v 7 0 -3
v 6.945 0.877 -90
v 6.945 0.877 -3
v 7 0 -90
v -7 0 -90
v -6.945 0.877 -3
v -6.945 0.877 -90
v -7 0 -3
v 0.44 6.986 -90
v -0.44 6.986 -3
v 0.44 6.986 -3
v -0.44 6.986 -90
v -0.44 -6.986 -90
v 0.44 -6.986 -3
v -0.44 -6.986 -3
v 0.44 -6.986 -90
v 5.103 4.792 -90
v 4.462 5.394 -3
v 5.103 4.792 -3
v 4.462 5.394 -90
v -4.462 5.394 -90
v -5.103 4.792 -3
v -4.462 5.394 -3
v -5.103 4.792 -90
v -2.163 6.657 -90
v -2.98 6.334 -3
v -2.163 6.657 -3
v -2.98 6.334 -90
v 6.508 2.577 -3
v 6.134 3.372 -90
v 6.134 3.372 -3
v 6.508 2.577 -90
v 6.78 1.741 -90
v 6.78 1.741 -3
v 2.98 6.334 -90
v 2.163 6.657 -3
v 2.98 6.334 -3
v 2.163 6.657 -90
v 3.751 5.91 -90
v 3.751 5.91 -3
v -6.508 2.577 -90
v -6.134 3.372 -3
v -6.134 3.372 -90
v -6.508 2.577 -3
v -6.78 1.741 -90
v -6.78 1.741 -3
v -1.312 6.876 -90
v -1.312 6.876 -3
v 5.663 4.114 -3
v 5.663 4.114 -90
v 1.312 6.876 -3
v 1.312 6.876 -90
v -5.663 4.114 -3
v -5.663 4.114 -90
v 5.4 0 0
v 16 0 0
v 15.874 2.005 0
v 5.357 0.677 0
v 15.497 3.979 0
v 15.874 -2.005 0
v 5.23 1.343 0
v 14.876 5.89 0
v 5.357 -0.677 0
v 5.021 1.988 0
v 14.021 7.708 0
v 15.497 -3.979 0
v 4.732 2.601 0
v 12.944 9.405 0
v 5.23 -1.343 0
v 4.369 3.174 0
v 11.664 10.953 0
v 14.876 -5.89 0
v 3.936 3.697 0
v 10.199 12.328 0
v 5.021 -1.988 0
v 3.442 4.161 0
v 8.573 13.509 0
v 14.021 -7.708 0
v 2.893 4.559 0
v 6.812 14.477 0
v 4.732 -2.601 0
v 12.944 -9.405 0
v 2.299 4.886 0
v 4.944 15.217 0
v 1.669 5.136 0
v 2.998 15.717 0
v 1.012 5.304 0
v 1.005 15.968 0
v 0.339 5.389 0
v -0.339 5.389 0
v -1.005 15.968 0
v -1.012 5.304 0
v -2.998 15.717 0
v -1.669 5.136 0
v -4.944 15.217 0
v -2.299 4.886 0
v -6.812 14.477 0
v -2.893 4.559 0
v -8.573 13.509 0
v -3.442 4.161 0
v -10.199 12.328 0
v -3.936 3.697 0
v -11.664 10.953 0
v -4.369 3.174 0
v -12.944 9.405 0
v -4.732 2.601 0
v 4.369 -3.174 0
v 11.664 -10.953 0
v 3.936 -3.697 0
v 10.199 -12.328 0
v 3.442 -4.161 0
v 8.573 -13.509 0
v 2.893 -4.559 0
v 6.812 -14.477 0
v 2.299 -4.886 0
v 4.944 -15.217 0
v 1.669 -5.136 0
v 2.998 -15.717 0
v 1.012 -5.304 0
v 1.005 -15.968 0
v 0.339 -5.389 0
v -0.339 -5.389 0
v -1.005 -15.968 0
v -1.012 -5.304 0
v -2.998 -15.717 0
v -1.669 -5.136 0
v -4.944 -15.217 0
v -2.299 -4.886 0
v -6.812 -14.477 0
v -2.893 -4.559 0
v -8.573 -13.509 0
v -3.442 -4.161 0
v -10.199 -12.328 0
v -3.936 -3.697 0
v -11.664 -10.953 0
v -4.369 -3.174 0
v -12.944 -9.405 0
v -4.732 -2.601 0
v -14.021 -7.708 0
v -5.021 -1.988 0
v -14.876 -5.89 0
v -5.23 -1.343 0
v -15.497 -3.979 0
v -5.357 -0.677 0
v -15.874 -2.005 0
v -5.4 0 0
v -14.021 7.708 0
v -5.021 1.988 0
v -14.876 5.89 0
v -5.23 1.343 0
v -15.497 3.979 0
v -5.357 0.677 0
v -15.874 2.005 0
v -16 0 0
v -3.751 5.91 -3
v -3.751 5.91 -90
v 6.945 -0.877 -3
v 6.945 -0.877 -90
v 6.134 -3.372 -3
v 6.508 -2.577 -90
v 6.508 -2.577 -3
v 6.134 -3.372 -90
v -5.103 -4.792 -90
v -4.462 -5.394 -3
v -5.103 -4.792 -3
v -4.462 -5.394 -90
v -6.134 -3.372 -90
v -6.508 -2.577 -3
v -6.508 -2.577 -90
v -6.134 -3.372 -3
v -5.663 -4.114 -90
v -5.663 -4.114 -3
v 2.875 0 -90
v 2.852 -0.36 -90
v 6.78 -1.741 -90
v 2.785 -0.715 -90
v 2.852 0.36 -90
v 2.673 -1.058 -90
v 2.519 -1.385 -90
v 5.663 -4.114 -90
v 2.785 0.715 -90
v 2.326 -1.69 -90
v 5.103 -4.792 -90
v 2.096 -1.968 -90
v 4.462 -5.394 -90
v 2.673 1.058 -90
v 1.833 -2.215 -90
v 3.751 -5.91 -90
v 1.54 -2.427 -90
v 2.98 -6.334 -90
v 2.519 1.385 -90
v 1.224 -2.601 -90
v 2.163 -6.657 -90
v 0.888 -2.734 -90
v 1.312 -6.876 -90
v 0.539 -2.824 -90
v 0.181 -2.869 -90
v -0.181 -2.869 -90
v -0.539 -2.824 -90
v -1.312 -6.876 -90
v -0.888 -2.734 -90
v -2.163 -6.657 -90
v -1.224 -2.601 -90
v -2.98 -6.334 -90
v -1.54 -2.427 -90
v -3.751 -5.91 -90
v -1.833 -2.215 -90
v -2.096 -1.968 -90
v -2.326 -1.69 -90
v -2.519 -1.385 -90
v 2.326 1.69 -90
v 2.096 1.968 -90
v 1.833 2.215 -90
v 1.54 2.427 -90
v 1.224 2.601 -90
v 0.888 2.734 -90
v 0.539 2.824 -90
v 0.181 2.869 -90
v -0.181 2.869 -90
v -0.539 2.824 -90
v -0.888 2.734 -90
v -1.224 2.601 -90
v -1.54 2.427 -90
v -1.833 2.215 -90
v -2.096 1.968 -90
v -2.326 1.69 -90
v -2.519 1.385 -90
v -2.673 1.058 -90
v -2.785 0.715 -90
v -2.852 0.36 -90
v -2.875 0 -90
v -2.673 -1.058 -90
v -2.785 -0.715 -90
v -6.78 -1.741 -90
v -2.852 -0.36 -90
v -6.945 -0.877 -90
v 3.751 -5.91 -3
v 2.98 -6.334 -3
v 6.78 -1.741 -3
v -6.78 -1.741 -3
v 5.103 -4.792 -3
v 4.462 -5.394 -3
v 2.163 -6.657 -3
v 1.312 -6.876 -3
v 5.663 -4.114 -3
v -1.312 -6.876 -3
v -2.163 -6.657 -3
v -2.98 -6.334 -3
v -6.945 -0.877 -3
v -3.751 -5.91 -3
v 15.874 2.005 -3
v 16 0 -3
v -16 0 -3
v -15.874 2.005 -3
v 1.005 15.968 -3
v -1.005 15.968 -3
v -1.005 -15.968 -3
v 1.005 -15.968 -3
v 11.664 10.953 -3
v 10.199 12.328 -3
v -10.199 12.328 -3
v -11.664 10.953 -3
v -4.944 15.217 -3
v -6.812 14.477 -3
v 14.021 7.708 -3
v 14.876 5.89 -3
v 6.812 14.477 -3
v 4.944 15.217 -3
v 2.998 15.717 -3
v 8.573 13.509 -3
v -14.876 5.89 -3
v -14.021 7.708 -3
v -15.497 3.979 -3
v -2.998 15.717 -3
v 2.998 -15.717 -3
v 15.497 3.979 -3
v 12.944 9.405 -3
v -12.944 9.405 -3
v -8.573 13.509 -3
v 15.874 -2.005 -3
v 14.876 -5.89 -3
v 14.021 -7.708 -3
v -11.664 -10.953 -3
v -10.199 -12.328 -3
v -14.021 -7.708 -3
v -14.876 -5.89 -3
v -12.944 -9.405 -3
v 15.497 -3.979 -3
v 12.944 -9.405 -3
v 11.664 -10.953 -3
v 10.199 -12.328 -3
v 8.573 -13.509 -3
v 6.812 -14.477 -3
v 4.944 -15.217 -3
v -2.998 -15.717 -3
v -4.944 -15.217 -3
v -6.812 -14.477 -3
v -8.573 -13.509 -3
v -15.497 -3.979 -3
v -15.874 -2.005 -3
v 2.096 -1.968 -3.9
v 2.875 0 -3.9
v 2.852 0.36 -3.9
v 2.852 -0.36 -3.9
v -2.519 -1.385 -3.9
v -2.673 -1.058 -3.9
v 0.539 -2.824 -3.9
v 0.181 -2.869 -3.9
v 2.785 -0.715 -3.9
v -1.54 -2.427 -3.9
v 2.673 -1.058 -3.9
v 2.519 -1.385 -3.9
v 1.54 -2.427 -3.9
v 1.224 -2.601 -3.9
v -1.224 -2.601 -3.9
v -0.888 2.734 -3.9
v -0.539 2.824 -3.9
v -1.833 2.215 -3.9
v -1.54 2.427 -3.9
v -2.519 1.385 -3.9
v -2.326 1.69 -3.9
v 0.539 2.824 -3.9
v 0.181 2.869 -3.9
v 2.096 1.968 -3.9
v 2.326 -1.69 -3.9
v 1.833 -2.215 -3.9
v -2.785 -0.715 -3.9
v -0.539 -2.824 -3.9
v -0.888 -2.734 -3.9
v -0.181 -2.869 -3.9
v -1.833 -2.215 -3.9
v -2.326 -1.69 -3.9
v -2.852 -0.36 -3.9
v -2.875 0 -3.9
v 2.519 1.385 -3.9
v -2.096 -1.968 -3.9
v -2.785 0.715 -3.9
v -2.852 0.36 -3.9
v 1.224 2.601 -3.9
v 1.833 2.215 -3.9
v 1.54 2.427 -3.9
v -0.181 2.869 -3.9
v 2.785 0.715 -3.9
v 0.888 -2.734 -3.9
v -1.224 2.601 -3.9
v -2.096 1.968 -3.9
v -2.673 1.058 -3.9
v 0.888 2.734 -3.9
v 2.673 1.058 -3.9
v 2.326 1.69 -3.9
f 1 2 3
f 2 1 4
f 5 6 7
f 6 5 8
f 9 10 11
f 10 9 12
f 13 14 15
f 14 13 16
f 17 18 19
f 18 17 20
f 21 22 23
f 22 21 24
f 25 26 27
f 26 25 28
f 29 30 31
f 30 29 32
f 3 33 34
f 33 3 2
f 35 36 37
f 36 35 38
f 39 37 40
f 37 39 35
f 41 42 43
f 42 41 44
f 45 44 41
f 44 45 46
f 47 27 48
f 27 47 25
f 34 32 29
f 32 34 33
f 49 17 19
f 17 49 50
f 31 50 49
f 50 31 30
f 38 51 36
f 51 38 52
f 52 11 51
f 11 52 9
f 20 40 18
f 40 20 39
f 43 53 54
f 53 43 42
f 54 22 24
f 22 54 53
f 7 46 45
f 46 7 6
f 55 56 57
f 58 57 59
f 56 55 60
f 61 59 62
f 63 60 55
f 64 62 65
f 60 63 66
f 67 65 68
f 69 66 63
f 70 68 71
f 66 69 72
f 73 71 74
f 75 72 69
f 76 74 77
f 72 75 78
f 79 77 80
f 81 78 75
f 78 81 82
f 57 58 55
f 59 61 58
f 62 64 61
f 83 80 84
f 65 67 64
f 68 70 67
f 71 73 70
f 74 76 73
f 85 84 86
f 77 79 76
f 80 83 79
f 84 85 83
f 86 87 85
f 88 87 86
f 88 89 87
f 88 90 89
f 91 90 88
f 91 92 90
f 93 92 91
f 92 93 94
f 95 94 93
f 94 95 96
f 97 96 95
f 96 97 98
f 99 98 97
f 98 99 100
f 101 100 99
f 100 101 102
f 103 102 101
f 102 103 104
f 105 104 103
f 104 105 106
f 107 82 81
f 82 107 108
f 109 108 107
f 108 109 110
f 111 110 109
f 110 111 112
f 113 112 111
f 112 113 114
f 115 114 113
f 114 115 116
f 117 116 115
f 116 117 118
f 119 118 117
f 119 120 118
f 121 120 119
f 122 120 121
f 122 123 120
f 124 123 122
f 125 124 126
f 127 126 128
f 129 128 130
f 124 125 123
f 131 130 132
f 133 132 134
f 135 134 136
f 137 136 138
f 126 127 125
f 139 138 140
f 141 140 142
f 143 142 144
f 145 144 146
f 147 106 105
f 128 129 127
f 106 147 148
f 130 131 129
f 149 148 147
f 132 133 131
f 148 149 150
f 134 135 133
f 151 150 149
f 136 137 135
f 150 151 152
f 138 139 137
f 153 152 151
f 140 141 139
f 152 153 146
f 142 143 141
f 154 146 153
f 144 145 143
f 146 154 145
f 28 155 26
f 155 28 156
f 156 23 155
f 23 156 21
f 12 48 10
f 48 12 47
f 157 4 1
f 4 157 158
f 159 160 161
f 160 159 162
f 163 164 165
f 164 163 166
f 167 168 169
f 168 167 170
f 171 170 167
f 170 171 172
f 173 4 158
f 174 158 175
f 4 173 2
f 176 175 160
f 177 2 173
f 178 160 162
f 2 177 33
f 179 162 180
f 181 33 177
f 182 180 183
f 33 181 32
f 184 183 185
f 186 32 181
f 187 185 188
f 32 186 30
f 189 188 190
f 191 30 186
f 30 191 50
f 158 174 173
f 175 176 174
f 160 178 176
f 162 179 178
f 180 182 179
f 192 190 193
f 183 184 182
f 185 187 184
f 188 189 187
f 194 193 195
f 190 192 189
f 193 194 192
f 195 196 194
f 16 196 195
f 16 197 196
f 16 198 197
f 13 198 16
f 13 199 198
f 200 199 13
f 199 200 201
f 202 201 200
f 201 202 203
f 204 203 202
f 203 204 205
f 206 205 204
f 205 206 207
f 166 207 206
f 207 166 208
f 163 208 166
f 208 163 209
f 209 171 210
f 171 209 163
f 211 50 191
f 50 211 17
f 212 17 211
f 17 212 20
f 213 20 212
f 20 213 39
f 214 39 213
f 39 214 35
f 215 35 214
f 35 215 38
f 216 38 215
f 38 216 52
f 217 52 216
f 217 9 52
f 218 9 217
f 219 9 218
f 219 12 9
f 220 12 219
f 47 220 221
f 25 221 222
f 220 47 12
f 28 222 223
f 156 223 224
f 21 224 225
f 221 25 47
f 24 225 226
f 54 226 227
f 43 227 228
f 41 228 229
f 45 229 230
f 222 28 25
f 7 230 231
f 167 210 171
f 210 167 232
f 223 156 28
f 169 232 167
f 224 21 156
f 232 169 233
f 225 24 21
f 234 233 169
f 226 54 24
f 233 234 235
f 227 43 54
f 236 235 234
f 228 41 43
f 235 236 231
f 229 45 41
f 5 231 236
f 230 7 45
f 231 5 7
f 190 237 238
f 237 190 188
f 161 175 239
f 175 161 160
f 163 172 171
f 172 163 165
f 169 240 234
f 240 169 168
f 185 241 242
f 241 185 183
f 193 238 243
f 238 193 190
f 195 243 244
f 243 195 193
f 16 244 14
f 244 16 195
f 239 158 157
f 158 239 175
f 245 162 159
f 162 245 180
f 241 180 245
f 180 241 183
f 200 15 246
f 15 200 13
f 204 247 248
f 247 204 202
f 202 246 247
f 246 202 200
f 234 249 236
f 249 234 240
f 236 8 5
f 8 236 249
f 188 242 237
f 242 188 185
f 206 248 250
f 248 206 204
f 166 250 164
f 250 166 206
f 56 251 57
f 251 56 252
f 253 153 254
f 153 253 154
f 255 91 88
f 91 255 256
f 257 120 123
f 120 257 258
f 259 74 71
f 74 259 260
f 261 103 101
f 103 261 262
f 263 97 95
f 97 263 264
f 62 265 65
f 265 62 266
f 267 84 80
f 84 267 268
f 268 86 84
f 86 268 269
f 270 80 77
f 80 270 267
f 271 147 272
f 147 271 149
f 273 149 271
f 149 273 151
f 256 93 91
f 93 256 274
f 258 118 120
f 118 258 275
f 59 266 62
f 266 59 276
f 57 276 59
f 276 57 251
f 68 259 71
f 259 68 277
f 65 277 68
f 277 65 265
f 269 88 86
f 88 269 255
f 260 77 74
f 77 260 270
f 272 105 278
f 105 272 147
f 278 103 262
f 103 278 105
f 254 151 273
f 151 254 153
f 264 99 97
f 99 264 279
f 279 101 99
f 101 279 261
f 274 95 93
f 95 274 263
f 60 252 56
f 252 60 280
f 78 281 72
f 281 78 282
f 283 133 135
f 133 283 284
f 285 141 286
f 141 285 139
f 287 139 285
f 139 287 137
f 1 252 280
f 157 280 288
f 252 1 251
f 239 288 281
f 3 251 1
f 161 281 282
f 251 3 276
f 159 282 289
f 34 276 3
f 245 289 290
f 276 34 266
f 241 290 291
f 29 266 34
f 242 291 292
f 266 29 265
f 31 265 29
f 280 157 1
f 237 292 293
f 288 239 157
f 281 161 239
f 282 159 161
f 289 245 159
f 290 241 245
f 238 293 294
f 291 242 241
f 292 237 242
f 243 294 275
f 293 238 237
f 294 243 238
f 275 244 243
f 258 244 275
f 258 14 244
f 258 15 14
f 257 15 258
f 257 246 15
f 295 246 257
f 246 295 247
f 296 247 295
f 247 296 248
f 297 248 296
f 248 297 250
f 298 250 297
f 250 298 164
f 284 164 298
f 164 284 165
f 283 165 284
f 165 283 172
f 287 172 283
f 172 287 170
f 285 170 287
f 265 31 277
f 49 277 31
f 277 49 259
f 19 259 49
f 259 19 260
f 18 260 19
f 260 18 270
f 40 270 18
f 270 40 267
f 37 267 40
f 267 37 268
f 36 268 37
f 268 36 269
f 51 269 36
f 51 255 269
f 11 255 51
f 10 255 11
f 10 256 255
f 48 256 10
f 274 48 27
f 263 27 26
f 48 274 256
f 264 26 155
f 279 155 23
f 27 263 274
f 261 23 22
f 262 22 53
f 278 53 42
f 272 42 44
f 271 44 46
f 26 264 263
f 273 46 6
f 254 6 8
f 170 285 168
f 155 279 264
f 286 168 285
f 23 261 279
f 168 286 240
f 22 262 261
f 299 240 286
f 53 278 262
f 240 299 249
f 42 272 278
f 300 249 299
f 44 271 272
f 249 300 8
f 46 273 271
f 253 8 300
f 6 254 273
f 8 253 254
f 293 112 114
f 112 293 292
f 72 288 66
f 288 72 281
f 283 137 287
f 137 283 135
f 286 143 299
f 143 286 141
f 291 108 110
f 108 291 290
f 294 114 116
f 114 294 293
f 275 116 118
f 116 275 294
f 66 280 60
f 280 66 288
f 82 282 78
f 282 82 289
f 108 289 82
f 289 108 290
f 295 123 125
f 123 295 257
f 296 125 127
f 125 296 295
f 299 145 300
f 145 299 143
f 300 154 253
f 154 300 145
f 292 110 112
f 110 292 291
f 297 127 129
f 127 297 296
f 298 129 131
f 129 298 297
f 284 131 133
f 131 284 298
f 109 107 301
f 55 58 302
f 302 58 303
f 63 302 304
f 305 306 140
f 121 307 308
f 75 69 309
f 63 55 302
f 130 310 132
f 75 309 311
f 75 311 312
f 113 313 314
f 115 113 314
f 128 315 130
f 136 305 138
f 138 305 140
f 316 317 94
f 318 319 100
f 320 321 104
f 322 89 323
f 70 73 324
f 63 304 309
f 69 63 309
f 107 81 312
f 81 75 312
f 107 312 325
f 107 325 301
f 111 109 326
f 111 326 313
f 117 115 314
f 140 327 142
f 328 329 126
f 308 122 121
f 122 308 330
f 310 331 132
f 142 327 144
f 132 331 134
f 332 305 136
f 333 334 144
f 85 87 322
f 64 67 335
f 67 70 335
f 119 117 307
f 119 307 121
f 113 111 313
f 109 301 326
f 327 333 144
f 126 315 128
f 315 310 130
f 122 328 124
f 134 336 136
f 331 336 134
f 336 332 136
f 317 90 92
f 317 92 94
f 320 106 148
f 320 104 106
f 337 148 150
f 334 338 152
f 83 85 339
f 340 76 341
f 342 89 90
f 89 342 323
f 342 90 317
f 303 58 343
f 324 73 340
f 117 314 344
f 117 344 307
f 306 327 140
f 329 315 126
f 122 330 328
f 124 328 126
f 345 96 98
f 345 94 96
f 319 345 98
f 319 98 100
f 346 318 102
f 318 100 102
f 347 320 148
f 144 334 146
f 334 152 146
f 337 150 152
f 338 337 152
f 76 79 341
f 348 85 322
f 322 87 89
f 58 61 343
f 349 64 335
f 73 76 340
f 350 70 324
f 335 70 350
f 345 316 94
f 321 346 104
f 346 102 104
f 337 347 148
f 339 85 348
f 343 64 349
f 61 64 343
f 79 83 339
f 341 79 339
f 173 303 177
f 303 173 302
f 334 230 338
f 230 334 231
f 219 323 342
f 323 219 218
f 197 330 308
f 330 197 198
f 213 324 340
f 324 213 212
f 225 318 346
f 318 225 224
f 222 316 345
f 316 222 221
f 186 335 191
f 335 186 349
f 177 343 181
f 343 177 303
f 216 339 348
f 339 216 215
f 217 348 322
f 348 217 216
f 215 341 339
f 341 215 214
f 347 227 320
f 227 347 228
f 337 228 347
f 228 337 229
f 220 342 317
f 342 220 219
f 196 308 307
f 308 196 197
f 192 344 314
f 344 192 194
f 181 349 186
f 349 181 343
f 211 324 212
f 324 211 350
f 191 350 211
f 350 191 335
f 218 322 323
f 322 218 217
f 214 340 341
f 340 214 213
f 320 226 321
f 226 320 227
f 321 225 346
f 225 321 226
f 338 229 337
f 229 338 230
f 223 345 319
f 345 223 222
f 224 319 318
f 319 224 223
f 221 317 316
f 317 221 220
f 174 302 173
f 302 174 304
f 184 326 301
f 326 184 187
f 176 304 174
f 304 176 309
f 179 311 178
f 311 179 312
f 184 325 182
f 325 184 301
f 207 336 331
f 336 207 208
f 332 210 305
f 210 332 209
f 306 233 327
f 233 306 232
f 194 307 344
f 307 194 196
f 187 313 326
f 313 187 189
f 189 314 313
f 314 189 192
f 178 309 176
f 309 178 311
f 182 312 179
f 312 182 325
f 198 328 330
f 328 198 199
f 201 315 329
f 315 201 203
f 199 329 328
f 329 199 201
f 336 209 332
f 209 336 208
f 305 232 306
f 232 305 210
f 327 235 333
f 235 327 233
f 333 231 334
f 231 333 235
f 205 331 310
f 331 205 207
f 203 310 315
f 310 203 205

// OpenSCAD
$fn = 50;


difference() {
	union() {
		translate(v = [0, 0, -90.0000000000]) {
			cylinder(h = 90, r = 7.0000000000);
		}
		translate(v = [0, 0, -3.0000000000]) {
			cylinder(h = 3, r = 16.0000000000);
		}
	}
	union() {
		translate(v = [0, 0, 0]) {
			rotate(a = [0, 0, 0]) {
				difference() {
					union() {
						#translate(v = [0, 0, -90.0000000000]) {
							cylinder(h = 90, r = 2.6000000000);
						}
						#translate(v = [0, 0, -3.9000000000]) {
							cylinder(h = 3.9000000000, r1 = 2.8750000000, r2 = 5.4000000000);
						}
						#translate(v = [0, 0, -90.0000000000]) {
							cylinder(h = 90, r = 2.8750000000);
						}
						#translate(v = [0, 0, -90.0000000000]) {
							cylinder(h = 90, r = 2.6000000000);
						}
					}
					union();
				}
			}
		}
	}
}
